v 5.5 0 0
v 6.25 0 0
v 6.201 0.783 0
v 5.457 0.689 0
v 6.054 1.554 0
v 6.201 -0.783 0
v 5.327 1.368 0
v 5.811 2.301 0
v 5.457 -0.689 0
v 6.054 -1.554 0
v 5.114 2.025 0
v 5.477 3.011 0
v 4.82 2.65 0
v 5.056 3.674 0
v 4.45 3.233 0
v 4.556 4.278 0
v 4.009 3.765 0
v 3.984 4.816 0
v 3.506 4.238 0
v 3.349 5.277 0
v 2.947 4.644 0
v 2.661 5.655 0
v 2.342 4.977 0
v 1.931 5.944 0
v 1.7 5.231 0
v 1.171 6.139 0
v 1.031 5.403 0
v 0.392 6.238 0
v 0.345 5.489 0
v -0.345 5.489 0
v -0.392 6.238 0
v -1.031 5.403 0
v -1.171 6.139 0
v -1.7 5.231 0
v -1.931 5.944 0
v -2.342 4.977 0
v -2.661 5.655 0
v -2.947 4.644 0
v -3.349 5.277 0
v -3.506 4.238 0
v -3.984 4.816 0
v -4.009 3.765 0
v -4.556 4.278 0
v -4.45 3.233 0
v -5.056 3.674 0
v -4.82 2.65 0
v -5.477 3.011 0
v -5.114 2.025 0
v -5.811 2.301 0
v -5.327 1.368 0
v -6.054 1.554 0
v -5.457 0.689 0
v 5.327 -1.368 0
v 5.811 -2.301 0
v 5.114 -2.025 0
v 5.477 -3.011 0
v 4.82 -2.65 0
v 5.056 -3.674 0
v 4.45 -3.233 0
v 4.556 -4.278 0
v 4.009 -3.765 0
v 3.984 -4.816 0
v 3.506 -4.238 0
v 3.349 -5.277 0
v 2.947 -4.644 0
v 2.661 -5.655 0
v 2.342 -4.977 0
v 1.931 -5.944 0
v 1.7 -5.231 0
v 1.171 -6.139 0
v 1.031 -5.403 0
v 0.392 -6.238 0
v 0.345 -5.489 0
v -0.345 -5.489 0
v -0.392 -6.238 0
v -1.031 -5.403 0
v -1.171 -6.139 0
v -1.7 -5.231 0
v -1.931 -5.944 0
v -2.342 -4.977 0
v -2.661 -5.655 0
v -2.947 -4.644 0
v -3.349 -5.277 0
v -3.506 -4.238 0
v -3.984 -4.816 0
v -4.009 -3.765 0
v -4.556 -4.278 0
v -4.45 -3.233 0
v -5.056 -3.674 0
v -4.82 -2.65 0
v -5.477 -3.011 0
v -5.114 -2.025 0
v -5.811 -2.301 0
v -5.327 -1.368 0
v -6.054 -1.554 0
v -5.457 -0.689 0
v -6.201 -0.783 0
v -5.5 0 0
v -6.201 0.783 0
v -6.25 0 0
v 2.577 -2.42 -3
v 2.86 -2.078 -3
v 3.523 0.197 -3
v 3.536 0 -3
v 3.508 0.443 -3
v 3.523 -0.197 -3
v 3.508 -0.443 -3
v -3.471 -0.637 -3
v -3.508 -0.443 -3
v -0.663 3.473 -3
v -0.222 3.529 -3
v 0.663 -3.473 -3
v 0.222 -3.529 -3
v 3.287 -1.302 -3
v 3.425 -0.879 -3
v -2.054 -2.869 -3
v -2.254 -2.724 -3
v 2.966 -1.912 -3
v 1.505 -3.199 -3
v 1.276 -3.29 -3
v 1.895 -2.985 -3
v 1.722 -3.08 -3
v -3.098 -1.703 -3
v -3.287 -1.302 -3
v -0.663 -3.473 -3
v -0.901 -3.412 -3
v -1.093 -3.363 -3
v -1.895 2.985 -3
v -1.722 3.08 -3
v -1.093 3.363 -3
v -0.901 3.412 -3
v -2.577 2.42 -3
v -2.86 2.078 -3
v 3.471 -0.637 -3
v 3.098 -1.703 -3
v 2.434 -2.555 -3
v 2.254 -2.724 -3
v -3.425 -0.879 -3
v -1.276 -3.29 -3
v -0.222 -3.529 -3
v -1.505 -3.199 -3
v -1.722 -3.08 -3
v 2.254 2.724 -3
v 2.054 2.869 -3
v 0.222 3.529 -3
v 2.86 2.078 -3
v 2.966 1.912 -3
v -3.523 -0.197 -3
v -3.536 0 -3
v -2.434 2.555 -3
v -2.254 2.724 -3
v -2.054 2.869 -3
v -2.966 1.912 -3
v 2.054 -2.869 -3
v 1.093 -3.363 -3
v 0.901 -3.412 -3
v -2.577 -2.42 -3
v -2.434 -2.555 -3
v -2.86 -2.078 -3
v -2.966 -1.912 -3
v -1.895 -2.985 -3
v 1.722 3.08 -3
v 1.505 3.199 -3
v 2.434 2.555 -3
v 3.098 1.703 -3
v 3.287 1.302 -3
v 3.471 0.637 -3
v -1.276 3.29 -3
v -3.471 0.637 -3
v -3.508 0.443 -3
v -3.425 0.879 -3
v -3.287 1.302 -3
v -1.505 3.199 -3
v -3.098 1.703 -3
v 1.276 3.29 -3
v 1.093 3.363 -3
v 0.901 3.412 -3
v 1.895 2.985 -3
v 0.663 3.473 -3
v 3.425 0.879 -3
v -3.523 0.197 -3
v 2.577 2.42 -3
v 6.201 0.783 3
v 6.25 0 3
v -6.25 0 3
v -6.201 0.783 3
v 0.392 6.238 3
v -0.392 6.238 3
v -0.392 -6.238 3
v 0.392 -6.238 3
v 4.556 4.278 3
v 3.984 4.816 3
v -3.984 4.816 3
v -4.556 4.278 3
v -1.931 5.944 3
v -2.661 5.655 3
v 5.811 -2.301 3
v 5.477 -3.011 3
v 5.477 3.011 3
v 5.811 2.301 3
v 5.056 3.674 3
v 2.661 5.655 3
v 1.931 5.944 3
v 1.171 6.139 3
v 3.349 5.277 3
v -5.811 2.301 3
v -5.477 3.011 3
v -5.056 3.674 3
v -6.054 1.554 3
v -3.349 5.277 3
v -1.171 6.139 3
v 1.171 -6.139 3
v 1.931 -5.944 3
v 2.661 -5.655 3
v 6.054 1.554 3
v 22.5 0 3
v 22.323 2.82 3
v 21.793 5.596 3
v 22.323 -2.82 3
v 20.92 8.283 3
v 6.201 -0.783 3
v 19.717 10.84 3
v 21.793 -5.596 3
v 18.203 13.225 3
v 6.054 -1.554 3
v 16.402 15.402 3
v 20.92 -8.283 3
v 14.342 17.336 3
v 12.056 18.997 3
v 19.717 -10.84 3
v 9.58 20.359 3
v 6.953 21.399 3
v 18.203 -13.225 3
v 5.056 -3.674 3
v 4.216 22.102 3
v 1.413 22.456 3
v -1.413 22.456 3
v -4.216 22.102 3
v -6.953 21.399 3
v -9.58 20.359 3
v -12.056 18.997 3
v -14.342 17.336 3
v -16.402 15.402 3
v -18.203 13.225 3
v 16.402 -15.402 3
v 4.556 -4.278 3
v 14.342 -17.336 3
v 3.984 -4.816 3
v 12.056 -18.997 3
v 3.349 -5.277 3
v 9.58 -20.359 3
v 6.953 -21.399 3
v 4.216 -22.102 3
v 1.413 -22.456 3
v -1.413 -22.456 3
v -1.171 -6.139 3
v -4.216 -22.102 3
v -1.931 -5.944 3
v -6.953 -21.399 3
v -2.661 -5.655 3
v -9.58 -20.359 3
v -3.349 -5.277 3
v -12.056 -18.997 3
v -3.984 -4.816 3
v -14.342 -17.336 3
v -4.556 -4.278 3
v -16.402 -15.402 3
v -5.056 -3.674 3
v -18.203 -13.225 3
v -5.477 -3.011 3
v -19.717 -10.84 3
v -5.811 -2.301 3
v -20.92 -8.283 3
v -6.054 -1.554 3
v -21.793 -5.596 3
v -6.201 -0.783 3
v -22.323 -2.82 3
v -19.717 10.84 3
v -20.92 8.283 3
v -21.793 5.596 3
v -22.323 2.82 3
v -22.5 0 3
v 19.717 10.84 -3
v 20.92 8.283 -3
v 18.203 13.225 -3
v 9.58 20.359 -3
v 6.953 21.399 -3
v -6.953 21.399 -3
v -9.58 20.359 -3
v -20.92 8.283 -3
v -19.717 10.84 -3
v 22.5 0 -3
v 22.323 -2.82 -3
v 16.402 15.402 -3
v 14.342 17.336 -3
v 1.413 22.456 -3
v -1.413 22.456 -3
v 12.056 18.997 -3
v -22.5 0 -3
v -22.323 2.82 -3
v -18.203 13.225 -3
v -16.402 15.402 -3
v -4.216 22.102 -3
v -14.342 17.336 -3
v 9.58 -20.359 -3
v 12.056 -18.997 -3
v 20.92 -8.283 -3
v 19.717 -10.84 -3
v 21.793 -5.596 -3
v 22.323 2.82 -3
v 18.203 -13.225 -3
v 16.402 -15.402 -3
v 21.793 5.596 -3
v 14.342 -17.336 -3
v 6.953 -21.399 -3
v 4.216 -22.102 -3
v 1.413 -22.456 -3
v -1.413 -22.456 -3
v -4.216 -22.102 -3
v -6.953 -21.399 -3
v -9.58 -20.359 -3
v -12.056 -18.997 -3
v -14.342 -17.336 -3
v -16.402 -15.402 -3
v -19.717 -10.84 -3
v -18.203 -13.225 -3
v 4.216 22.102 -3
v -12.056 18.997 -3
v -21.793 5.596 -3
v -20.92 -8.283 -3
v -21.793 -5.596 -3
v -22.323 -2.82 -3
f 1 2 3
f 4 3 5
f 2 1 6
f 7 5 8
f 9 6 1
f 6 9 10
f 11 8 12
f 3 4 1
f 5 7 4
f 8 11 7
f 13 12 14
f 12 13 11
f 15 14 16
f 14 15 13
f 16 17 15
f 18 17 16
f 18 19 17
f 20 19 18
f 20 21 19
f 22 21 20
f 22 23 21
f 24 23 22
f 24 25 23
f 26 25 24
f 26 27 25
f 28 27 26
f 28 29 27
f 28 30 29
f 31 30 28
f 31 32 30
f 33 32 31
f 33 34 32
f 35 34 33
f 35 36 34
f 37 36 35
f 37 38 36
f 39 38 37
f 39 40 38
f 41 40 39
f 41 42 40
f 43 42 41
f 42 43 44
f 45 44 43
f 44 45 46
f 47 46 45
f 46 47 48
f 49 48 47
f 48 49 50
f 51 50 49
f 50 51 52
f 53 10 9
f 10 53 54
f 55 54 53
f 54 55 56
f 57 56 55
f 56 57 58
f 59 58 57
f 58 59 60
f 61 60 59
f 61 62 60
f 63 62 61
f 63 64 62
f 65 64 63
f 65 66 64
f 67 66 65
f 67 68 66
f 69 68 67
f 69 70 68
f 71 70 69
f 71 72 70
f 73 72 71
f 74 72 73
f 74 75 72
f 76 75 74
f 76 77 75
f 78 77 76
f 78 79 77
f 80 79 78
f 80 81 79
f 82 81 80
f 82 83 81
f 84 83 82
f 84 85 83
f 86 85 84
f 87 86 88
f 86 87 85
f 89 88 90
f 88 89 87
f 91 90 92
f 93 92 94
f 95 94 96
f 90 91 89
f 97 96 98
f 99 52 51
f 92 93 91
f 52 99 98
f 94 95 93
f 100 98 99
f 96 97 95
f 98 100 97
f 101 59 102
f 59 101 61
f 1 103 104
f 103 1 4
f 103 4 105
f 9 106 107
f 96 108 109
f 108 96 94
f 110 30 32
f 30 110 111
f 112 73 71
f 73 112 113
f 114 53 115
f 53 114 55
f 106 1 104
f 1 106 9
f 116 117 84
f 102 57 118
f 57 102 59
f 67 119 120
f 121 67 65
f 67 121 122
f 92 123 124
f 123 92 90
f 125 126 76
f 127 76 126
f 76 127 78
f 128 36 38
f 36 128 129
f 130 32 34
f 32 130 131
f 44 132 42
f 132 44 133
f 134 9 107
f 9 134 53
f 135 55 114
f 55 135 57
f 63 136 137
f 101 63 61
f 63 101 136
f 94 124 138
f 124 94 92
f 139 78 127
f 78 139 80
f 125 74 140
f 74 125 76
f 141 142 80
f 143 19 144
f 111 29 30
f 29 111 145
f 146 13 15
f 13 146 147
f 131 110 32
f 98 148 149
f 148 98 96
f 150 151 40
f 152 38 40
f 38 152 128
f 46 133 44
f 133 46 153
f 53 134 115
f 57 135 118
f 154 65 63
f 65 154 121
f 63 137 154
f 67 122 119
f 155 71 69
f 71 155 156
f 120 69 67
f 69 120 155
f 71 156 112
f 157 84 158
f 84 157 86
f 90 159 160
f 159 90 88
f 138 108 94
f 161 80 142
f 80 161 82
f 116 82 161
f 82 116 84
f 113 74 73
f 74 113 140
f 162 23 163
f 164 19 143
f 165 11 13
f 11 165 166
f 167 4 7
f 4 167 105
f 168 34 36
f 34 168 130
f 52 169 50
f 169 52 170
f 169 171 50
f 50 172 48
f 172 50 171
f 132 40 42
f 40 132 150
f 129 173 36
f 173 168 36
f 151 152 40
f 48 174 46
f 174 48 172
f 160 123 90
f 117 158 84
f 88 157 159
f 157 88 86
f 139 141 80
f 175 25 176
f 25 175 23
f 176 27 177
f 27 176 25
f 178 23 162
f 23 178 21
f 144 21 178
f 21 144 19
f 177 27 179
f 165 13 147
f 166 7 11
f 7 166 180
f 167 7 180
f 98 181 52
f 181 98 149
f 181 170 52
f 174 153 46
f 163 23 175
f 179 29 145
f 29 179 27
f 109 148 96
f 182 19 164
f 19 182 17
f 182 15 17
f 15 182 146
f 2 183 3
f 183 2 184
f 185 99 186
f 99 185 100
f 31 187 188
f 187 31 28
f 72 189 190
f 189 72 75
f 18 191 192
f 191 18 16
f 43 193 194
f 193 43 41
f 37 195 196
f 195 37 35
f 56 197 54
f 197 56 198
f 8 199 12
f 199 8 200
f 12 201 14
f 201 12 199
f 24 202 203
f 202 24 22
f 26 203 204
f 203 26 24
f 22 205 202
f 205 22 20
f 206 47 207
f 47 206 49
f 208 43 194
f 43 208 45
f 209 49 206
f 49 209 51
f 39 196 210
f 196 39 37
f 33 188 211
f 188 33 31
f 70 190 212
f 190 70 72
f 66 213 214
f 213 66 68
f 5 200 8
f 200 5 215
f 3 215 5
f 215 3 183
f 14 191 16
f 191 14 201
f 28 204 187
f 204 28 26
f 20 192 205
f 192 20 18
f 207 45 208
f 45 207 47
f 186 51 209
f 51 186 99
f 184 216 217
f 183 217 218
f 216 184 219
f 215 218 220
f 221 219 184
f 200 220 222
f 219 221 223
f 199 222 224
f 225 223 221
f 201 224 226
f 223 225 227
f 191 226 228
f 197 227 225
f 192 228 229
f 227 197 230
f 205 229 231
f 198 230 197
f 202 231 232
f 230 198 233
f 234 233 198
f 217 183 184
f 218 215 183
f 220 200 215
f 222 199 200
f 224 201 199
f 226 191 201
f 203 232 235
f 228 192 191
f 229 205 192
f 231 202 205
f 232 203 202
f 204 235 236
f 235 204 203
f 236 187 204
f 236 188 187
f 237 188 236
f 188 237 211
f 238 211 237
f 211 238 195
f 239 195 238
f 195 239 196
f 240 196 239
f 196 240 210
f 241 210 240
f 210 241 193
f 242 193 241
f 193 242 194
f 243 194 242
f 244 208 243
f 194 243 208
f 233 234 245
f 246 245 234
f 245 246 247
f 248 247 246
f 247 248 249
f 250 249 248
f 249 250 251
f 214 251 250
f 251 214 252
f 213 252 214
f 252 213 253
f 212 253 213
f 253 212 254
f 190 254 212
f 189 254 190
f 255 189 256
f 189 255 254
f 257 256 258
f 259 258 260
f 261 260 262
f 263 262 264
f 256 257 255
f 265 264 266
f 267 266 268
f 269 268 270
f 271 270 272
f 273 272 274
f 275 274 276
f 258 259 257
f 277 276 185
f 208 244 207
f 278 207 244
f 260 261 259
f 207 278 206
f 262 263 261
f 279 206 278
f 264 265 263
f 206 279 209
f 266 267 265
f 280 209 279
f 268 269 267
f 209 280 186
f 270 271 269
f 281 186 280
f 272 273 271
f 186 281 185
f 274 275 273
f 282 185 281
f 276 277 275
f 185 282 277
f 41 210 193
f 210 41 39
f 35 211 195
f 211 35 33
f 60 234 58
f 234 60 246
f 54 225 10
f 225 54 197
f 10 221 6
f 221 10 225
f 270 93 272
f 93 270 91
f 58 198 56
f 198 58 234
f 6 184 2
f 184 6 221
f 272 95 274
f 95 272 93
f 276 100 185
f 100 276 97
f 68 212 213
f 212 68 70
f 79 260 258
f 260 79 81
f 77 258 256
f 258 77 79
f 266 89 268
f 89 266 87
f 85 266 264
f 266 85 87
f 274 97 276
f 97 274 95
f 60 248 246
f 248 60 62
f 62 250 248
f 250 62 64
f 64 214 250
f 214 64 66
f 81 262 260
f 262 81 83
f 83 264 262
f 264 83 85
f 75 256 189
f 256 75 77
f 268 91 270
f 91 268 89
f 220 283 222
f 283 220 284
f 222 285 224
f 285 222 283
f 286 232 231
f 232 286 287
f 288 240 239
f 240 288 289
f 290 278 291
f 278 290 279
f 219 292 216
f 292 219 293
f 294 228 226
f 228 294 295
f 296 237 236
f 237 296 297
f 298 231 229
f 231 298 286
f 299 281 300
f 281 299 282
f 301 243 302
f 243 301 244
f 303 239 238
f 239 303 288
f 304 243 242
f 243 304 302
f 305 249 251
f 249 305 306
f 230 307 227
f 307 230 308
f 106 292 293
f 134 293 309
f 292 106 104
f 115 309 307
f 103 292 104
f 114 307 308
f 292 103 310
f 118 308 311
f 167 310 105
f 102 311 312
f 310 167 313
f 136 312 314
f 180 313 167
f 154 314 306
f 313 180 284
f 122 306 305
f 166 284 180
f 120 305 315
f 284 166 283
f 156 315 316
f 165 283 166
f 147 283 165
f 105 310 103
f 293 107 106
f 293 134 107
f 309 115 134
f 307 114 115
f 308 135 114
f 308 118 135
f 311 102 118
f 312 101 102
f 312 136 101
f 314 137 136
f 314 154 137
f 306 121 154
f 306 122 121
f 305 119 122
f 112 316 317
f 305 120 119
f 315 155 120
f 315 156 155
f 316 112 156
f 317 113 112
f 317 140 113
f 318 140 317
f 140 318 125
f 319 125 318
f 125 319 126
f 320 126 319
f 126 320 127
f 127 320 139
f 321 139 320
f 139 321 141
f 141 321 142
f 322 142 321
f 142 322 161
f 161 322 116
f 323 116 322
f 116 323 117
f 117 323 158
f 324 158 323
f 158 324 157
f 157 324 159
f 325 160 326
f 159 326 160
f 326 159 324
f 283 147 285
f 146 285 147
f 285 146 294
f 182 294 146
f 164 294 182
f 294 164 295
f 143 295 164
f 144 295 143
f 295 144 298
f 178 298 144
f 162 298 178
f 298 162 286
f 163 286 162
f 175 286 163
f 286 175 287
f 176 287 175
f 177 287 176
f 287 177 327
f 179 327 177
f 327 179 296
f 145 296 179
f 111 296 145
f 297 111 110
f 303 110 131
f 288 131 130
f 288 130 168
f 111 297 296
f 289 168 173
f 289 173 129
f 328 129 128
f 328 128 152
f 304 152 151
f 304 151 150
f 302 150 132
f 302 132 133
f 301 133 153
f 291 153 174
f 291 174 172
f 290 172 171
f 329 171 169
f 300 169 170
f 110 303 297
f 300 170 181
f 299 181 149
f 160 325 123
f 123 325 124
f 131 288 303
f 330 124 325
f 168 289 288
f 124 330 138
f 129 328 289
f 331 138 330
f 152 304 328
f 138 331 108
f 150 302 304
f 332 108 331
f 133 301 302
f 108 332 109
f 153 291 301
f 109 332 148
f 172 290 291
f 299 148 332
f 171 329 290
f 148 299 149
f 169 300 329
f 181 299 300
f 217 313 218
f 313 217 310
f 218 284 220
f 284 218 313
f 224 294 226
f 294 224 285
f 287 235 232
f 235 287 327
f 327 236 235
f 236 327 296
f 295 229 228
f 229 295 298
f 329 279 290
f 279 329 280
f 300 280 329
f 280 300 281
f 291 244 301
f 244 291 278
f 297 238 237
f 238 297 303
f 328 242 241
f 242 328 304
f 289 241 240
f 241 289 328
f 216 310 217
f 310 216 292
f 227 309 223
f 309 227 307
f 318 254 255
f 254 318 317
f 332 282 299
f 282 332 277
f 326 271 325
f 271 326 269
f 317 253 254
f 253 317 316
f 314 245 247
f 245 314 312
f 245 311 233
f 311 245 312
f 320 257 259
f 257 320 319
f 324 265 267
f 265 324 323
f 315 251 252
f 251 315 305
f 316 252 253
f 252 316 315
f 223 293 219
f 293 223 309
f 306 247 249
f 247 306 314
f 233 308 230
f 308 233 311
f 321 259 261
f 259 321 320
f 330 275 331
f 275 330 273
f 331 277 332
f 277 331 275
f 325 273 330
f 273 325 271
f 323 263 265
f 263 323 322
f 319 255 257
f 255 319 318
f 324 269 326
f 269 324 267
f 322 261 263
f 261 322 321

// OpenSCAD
$fn = 50;


difference() {
	union() {
		translate(v = [0, 0, -3.0000000000]) {
			cylinder(h = 6, r = 22.5000000000);
		}
	}
	union() {
		translate(v = [0, 0, 0]) {
			rotate(a = [0, 0, 0]) {
				difference() {
					union() {
						translate(v = [0, 0, -6.0000000000]) {
							cylinder(h = 6, r = 2.2500000000);
						}
						translate(v = [0, 0, -4.2000000000]) {
							cylinder(h = 4.2000000000, r1 = 2.7500000000, r2 = 5.5000000000);
						}
						translate(v = [0, 0, -6.0000000000]) {
							cylinder(h = 6, r = 2.7500000000);
						}
						translate(v = [0, 0, -6.0000000000]) {
							cylinder(h = 6, r = 2.2500000000);
						}
					}
					union();
				}
			}
		}
		#cylinder(h = 3, r = 6.2500000000);
	}
}
